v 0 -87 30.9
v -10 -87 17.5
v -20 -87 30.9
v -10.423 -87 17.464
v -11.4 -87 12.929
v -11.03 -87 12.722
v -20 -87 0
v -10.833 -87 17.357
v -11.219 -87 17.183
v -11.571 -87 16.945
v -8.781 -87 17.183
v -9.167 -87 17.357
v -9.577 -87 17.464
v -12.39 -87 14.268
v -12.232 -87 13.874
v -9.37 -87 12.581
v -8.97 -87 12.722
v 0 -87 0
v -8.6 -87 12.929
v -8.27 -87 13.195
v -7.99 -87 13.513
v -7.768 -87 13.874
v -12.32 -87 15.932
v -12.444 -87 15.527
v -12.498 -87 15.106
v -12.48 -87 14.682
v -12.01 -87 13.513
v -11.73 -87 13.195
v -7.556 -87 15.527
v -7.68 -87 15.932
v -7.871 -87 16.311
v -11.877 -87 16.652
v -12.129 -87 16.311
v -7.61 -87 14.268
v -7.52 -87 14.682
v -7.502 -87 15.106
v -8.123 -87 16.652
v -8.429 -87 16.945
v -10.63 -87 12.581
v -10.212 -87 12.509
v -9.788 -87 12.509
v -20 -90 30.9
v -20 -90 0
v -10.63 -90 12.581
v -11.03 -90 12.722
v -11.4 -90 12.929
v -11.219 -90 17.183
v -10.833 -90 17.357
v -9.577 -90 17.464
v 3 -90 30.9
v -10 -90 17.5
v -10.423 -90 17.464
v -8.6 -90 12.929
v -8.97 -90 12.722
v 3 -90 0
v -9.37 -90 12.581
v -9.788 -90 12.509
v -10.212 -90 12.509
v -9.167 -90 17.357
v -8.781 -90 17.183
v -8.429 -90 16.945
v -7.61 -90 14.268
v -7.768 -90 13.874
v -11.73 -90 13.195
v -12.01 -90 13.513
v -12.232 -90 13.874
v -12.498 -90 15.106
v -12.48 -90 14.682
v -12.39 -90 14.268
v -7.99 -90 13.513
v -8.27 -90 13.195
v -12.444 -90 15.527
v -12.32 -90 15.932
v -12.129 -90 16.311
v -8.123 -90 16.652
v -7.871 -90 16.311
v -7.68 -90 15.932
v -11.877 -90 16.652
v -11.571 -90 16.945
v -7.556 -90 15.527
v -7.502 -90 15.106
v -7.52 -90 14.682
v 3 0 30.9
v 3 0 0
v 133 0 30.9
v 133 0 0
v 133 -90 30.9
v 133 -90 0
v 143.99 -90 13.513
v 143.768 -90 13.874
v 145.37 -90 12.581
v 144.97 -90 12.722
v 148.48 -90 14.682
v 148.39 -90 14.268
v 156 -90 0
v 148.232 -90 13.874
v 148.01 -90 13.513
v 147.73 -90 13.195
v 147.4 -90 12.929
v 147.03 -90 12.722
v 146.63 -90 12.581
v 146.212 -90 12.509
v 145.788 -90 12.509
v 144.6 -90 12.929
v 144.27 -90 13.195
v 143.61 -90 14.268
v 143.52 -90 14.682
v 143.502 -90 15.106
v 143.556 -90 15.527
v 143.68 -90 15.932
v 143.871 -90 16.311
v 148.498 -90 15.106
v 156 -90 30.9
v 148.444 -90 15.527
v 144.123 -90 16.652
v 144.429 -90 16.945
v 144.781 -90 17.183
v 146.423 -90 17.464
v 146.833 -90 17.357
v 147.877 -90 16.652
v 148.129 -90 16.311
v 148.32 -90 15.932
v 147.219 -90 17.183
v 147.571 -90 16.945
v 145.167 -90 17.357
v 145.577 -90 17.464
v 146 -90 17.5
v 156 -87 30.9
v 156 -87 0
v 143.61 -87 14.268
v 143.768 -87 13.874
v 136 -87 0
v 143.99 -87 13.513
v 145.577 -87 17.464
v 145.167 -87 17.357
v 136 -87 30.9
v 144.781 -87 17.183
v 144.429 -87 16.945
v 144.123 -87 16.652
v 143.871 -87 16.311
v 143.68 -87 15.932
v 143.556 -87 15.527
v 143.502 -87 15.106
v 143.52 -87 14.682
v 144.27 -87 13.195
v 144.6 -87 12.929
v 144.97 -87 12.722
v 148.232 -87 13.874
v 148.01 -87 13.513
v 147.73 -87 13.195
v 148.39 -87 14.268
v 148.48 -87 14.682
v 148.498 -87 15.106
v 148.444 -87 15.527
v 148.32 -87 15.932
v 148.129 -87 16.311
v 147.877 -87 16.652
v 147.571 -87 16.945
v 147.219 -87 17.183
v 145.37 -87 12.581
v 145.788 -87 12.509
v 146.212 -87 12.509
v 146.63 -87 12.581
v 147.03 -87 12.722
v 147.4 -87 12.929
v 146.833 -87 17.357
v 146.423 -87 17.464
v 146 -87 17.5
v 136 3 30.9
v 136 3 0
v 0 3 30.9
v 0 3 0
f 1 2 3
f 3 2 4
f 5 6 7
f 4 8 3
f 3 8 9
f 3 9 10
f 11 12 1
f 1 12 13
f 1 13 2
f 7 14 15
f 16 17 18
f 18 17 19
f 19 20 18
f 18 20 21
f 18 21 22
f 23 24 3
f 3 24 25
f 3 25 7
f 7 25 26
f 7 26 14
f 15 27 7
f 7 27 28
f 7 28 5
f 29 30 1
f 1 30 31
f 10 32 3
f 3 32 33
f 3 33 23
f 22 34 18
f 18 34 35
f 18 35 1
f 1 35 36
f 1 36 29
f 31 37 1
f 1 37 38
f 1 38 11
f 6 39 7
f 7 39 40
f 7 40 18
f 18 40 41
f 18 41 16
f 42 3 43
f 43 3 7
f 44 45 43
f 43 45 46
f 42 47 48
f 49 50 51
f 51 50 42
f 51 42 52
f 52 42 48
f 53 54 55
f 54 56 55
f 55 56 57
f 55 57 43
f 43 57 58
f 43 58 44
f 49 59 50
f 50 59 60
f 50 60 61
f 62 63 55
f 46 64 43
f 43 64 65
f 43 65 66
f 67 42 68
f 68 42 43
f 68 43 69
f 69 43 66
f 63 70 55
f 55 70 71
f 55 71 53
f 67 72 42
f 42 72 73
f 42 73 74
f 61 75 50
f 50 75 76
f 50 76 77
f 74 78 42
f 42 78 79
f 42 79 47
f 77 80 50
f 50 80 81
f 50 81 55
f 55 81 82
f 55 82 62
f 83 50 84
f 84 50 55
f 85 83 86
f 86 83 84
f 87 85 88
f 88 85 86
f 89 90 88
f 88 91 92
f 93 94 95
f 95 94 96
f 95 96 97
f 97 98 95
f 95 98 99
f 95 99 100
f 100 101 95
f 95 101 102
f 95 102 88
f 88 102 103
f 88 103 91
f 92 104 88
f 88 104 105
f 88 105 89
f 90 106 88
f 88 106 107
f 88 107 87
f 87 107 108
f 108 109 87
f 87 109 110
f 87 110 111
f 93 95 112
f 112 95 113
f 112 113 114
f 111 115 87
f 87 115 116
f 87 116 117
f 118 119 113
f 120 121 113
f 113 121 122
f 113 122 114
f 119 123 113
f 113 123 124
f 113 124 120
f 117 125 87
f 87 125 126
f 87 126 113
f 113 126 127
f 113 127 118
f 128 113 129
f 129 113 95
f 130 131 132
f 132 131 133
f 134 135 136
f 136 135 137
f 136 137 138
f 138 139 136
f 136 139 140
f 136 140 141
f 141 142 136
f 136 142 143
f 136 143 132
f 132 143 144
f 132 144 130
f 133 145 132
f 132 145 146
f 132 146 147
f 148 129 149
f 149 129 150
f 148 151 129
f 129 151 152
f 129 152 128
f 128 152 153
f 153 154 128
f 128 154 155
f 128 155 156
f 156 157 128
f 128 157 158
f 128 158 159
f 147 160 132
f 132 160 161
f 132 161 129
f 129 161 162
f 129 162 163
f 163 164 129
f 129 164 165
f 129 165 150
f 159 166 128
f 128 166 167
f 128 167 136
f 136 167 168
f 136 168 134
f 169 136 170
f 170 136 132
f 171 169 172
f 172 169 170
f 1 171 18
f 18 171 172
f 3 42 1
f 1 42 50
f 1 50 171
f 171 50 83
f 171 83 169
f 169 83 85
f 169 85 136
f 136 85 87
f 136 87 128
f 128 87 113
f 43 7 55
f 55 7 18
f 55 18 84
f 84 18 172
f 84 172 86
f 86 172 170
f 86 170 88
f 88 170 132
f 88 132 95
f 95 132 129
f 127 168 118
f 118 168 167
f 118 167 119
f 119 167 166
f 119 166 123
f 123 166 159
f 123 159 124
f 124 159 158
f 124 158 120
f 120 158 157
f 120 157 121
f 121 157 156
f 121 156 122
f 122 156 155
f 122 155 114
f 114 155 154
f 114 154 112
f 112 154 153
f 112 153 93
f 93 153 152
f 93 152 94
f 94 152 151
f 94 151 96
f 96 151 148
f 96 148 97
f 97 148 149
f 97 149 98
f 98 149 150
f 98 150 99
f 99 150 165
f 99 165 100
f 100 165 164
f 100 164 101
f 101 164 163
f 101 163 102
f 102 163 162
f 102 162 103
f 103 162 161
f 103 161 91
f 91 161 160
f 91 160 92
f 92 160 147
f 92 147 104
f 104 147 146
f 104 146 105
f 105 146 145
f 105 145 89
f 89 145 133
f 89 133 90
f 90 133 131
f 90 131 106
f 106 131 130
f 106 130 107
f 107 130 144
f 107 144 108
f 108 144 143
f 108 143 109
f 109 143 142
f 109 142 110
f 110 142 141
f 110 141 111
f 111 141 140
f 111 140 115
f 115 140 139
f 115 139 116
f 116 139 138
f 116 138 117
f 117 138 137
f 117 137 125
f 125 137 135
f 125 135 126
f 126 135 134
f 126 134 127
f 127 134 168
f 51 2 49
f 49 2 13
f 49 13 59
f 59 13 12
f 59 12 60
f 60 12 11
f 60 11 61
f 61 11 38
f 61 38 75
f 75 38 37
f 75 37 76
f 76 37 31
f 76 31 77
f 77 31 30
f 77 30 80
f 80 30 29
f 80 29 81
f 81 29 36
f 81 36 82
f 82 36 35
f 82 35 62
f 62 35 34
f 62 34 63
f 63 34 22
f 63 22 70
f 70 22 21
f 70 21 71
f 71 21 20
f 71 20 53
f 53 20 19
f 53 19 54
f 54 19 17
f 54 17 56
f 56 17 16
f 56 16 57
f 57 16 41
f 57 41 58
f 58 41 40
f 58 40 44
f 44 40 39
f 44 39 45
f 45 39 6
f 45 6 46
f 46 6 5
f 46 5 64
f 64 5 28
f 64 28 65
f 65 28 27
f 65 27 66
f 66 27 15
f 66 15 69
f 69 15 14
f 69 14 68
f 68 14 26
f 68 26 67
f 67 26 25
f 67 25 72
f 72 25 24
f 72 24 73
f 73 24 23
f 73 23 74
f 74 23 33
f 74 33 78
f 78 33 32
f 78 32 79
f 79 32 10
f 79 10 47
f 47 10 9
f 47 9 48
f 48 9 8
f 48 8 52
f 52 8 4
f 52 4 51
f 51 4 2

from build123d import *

# Parameters (mm, degrees)
BOSS_EXTRUDE1_DEPTH   = 30.9
F_5_0MM_DOWEL_HOLE1_D = 5


with BuildPart() as part:
    # Sketch1 → Boss-Extrude1 (new body)
    with BuildSketch(Plane.XY):
        Polygon((3, 0), (133, 0), (133, -90), (136, -90), (156, -90), (156, -87), (136, -87), (136, 0), (136, 3), (0, 3), (0, 0), (0, -87), (-20, -87), (-20, -90), (0, -90), (3, -90), align=None)
    extrude(amount=BOSS_EXTRUDE1_DEPTH)

    # Ø5.0mm Dowel Hole1 (through all)
    with Locations(Plane(origin=(0, -87, 0), x_dir=(1, 0, 0), z_dir=(0, 1, 0))):
        with Locations((-10, -15), (146, -15)):
            Hole(F_5_0MM_DOWEL_HOLE1_D / 2)


solid = part.part
